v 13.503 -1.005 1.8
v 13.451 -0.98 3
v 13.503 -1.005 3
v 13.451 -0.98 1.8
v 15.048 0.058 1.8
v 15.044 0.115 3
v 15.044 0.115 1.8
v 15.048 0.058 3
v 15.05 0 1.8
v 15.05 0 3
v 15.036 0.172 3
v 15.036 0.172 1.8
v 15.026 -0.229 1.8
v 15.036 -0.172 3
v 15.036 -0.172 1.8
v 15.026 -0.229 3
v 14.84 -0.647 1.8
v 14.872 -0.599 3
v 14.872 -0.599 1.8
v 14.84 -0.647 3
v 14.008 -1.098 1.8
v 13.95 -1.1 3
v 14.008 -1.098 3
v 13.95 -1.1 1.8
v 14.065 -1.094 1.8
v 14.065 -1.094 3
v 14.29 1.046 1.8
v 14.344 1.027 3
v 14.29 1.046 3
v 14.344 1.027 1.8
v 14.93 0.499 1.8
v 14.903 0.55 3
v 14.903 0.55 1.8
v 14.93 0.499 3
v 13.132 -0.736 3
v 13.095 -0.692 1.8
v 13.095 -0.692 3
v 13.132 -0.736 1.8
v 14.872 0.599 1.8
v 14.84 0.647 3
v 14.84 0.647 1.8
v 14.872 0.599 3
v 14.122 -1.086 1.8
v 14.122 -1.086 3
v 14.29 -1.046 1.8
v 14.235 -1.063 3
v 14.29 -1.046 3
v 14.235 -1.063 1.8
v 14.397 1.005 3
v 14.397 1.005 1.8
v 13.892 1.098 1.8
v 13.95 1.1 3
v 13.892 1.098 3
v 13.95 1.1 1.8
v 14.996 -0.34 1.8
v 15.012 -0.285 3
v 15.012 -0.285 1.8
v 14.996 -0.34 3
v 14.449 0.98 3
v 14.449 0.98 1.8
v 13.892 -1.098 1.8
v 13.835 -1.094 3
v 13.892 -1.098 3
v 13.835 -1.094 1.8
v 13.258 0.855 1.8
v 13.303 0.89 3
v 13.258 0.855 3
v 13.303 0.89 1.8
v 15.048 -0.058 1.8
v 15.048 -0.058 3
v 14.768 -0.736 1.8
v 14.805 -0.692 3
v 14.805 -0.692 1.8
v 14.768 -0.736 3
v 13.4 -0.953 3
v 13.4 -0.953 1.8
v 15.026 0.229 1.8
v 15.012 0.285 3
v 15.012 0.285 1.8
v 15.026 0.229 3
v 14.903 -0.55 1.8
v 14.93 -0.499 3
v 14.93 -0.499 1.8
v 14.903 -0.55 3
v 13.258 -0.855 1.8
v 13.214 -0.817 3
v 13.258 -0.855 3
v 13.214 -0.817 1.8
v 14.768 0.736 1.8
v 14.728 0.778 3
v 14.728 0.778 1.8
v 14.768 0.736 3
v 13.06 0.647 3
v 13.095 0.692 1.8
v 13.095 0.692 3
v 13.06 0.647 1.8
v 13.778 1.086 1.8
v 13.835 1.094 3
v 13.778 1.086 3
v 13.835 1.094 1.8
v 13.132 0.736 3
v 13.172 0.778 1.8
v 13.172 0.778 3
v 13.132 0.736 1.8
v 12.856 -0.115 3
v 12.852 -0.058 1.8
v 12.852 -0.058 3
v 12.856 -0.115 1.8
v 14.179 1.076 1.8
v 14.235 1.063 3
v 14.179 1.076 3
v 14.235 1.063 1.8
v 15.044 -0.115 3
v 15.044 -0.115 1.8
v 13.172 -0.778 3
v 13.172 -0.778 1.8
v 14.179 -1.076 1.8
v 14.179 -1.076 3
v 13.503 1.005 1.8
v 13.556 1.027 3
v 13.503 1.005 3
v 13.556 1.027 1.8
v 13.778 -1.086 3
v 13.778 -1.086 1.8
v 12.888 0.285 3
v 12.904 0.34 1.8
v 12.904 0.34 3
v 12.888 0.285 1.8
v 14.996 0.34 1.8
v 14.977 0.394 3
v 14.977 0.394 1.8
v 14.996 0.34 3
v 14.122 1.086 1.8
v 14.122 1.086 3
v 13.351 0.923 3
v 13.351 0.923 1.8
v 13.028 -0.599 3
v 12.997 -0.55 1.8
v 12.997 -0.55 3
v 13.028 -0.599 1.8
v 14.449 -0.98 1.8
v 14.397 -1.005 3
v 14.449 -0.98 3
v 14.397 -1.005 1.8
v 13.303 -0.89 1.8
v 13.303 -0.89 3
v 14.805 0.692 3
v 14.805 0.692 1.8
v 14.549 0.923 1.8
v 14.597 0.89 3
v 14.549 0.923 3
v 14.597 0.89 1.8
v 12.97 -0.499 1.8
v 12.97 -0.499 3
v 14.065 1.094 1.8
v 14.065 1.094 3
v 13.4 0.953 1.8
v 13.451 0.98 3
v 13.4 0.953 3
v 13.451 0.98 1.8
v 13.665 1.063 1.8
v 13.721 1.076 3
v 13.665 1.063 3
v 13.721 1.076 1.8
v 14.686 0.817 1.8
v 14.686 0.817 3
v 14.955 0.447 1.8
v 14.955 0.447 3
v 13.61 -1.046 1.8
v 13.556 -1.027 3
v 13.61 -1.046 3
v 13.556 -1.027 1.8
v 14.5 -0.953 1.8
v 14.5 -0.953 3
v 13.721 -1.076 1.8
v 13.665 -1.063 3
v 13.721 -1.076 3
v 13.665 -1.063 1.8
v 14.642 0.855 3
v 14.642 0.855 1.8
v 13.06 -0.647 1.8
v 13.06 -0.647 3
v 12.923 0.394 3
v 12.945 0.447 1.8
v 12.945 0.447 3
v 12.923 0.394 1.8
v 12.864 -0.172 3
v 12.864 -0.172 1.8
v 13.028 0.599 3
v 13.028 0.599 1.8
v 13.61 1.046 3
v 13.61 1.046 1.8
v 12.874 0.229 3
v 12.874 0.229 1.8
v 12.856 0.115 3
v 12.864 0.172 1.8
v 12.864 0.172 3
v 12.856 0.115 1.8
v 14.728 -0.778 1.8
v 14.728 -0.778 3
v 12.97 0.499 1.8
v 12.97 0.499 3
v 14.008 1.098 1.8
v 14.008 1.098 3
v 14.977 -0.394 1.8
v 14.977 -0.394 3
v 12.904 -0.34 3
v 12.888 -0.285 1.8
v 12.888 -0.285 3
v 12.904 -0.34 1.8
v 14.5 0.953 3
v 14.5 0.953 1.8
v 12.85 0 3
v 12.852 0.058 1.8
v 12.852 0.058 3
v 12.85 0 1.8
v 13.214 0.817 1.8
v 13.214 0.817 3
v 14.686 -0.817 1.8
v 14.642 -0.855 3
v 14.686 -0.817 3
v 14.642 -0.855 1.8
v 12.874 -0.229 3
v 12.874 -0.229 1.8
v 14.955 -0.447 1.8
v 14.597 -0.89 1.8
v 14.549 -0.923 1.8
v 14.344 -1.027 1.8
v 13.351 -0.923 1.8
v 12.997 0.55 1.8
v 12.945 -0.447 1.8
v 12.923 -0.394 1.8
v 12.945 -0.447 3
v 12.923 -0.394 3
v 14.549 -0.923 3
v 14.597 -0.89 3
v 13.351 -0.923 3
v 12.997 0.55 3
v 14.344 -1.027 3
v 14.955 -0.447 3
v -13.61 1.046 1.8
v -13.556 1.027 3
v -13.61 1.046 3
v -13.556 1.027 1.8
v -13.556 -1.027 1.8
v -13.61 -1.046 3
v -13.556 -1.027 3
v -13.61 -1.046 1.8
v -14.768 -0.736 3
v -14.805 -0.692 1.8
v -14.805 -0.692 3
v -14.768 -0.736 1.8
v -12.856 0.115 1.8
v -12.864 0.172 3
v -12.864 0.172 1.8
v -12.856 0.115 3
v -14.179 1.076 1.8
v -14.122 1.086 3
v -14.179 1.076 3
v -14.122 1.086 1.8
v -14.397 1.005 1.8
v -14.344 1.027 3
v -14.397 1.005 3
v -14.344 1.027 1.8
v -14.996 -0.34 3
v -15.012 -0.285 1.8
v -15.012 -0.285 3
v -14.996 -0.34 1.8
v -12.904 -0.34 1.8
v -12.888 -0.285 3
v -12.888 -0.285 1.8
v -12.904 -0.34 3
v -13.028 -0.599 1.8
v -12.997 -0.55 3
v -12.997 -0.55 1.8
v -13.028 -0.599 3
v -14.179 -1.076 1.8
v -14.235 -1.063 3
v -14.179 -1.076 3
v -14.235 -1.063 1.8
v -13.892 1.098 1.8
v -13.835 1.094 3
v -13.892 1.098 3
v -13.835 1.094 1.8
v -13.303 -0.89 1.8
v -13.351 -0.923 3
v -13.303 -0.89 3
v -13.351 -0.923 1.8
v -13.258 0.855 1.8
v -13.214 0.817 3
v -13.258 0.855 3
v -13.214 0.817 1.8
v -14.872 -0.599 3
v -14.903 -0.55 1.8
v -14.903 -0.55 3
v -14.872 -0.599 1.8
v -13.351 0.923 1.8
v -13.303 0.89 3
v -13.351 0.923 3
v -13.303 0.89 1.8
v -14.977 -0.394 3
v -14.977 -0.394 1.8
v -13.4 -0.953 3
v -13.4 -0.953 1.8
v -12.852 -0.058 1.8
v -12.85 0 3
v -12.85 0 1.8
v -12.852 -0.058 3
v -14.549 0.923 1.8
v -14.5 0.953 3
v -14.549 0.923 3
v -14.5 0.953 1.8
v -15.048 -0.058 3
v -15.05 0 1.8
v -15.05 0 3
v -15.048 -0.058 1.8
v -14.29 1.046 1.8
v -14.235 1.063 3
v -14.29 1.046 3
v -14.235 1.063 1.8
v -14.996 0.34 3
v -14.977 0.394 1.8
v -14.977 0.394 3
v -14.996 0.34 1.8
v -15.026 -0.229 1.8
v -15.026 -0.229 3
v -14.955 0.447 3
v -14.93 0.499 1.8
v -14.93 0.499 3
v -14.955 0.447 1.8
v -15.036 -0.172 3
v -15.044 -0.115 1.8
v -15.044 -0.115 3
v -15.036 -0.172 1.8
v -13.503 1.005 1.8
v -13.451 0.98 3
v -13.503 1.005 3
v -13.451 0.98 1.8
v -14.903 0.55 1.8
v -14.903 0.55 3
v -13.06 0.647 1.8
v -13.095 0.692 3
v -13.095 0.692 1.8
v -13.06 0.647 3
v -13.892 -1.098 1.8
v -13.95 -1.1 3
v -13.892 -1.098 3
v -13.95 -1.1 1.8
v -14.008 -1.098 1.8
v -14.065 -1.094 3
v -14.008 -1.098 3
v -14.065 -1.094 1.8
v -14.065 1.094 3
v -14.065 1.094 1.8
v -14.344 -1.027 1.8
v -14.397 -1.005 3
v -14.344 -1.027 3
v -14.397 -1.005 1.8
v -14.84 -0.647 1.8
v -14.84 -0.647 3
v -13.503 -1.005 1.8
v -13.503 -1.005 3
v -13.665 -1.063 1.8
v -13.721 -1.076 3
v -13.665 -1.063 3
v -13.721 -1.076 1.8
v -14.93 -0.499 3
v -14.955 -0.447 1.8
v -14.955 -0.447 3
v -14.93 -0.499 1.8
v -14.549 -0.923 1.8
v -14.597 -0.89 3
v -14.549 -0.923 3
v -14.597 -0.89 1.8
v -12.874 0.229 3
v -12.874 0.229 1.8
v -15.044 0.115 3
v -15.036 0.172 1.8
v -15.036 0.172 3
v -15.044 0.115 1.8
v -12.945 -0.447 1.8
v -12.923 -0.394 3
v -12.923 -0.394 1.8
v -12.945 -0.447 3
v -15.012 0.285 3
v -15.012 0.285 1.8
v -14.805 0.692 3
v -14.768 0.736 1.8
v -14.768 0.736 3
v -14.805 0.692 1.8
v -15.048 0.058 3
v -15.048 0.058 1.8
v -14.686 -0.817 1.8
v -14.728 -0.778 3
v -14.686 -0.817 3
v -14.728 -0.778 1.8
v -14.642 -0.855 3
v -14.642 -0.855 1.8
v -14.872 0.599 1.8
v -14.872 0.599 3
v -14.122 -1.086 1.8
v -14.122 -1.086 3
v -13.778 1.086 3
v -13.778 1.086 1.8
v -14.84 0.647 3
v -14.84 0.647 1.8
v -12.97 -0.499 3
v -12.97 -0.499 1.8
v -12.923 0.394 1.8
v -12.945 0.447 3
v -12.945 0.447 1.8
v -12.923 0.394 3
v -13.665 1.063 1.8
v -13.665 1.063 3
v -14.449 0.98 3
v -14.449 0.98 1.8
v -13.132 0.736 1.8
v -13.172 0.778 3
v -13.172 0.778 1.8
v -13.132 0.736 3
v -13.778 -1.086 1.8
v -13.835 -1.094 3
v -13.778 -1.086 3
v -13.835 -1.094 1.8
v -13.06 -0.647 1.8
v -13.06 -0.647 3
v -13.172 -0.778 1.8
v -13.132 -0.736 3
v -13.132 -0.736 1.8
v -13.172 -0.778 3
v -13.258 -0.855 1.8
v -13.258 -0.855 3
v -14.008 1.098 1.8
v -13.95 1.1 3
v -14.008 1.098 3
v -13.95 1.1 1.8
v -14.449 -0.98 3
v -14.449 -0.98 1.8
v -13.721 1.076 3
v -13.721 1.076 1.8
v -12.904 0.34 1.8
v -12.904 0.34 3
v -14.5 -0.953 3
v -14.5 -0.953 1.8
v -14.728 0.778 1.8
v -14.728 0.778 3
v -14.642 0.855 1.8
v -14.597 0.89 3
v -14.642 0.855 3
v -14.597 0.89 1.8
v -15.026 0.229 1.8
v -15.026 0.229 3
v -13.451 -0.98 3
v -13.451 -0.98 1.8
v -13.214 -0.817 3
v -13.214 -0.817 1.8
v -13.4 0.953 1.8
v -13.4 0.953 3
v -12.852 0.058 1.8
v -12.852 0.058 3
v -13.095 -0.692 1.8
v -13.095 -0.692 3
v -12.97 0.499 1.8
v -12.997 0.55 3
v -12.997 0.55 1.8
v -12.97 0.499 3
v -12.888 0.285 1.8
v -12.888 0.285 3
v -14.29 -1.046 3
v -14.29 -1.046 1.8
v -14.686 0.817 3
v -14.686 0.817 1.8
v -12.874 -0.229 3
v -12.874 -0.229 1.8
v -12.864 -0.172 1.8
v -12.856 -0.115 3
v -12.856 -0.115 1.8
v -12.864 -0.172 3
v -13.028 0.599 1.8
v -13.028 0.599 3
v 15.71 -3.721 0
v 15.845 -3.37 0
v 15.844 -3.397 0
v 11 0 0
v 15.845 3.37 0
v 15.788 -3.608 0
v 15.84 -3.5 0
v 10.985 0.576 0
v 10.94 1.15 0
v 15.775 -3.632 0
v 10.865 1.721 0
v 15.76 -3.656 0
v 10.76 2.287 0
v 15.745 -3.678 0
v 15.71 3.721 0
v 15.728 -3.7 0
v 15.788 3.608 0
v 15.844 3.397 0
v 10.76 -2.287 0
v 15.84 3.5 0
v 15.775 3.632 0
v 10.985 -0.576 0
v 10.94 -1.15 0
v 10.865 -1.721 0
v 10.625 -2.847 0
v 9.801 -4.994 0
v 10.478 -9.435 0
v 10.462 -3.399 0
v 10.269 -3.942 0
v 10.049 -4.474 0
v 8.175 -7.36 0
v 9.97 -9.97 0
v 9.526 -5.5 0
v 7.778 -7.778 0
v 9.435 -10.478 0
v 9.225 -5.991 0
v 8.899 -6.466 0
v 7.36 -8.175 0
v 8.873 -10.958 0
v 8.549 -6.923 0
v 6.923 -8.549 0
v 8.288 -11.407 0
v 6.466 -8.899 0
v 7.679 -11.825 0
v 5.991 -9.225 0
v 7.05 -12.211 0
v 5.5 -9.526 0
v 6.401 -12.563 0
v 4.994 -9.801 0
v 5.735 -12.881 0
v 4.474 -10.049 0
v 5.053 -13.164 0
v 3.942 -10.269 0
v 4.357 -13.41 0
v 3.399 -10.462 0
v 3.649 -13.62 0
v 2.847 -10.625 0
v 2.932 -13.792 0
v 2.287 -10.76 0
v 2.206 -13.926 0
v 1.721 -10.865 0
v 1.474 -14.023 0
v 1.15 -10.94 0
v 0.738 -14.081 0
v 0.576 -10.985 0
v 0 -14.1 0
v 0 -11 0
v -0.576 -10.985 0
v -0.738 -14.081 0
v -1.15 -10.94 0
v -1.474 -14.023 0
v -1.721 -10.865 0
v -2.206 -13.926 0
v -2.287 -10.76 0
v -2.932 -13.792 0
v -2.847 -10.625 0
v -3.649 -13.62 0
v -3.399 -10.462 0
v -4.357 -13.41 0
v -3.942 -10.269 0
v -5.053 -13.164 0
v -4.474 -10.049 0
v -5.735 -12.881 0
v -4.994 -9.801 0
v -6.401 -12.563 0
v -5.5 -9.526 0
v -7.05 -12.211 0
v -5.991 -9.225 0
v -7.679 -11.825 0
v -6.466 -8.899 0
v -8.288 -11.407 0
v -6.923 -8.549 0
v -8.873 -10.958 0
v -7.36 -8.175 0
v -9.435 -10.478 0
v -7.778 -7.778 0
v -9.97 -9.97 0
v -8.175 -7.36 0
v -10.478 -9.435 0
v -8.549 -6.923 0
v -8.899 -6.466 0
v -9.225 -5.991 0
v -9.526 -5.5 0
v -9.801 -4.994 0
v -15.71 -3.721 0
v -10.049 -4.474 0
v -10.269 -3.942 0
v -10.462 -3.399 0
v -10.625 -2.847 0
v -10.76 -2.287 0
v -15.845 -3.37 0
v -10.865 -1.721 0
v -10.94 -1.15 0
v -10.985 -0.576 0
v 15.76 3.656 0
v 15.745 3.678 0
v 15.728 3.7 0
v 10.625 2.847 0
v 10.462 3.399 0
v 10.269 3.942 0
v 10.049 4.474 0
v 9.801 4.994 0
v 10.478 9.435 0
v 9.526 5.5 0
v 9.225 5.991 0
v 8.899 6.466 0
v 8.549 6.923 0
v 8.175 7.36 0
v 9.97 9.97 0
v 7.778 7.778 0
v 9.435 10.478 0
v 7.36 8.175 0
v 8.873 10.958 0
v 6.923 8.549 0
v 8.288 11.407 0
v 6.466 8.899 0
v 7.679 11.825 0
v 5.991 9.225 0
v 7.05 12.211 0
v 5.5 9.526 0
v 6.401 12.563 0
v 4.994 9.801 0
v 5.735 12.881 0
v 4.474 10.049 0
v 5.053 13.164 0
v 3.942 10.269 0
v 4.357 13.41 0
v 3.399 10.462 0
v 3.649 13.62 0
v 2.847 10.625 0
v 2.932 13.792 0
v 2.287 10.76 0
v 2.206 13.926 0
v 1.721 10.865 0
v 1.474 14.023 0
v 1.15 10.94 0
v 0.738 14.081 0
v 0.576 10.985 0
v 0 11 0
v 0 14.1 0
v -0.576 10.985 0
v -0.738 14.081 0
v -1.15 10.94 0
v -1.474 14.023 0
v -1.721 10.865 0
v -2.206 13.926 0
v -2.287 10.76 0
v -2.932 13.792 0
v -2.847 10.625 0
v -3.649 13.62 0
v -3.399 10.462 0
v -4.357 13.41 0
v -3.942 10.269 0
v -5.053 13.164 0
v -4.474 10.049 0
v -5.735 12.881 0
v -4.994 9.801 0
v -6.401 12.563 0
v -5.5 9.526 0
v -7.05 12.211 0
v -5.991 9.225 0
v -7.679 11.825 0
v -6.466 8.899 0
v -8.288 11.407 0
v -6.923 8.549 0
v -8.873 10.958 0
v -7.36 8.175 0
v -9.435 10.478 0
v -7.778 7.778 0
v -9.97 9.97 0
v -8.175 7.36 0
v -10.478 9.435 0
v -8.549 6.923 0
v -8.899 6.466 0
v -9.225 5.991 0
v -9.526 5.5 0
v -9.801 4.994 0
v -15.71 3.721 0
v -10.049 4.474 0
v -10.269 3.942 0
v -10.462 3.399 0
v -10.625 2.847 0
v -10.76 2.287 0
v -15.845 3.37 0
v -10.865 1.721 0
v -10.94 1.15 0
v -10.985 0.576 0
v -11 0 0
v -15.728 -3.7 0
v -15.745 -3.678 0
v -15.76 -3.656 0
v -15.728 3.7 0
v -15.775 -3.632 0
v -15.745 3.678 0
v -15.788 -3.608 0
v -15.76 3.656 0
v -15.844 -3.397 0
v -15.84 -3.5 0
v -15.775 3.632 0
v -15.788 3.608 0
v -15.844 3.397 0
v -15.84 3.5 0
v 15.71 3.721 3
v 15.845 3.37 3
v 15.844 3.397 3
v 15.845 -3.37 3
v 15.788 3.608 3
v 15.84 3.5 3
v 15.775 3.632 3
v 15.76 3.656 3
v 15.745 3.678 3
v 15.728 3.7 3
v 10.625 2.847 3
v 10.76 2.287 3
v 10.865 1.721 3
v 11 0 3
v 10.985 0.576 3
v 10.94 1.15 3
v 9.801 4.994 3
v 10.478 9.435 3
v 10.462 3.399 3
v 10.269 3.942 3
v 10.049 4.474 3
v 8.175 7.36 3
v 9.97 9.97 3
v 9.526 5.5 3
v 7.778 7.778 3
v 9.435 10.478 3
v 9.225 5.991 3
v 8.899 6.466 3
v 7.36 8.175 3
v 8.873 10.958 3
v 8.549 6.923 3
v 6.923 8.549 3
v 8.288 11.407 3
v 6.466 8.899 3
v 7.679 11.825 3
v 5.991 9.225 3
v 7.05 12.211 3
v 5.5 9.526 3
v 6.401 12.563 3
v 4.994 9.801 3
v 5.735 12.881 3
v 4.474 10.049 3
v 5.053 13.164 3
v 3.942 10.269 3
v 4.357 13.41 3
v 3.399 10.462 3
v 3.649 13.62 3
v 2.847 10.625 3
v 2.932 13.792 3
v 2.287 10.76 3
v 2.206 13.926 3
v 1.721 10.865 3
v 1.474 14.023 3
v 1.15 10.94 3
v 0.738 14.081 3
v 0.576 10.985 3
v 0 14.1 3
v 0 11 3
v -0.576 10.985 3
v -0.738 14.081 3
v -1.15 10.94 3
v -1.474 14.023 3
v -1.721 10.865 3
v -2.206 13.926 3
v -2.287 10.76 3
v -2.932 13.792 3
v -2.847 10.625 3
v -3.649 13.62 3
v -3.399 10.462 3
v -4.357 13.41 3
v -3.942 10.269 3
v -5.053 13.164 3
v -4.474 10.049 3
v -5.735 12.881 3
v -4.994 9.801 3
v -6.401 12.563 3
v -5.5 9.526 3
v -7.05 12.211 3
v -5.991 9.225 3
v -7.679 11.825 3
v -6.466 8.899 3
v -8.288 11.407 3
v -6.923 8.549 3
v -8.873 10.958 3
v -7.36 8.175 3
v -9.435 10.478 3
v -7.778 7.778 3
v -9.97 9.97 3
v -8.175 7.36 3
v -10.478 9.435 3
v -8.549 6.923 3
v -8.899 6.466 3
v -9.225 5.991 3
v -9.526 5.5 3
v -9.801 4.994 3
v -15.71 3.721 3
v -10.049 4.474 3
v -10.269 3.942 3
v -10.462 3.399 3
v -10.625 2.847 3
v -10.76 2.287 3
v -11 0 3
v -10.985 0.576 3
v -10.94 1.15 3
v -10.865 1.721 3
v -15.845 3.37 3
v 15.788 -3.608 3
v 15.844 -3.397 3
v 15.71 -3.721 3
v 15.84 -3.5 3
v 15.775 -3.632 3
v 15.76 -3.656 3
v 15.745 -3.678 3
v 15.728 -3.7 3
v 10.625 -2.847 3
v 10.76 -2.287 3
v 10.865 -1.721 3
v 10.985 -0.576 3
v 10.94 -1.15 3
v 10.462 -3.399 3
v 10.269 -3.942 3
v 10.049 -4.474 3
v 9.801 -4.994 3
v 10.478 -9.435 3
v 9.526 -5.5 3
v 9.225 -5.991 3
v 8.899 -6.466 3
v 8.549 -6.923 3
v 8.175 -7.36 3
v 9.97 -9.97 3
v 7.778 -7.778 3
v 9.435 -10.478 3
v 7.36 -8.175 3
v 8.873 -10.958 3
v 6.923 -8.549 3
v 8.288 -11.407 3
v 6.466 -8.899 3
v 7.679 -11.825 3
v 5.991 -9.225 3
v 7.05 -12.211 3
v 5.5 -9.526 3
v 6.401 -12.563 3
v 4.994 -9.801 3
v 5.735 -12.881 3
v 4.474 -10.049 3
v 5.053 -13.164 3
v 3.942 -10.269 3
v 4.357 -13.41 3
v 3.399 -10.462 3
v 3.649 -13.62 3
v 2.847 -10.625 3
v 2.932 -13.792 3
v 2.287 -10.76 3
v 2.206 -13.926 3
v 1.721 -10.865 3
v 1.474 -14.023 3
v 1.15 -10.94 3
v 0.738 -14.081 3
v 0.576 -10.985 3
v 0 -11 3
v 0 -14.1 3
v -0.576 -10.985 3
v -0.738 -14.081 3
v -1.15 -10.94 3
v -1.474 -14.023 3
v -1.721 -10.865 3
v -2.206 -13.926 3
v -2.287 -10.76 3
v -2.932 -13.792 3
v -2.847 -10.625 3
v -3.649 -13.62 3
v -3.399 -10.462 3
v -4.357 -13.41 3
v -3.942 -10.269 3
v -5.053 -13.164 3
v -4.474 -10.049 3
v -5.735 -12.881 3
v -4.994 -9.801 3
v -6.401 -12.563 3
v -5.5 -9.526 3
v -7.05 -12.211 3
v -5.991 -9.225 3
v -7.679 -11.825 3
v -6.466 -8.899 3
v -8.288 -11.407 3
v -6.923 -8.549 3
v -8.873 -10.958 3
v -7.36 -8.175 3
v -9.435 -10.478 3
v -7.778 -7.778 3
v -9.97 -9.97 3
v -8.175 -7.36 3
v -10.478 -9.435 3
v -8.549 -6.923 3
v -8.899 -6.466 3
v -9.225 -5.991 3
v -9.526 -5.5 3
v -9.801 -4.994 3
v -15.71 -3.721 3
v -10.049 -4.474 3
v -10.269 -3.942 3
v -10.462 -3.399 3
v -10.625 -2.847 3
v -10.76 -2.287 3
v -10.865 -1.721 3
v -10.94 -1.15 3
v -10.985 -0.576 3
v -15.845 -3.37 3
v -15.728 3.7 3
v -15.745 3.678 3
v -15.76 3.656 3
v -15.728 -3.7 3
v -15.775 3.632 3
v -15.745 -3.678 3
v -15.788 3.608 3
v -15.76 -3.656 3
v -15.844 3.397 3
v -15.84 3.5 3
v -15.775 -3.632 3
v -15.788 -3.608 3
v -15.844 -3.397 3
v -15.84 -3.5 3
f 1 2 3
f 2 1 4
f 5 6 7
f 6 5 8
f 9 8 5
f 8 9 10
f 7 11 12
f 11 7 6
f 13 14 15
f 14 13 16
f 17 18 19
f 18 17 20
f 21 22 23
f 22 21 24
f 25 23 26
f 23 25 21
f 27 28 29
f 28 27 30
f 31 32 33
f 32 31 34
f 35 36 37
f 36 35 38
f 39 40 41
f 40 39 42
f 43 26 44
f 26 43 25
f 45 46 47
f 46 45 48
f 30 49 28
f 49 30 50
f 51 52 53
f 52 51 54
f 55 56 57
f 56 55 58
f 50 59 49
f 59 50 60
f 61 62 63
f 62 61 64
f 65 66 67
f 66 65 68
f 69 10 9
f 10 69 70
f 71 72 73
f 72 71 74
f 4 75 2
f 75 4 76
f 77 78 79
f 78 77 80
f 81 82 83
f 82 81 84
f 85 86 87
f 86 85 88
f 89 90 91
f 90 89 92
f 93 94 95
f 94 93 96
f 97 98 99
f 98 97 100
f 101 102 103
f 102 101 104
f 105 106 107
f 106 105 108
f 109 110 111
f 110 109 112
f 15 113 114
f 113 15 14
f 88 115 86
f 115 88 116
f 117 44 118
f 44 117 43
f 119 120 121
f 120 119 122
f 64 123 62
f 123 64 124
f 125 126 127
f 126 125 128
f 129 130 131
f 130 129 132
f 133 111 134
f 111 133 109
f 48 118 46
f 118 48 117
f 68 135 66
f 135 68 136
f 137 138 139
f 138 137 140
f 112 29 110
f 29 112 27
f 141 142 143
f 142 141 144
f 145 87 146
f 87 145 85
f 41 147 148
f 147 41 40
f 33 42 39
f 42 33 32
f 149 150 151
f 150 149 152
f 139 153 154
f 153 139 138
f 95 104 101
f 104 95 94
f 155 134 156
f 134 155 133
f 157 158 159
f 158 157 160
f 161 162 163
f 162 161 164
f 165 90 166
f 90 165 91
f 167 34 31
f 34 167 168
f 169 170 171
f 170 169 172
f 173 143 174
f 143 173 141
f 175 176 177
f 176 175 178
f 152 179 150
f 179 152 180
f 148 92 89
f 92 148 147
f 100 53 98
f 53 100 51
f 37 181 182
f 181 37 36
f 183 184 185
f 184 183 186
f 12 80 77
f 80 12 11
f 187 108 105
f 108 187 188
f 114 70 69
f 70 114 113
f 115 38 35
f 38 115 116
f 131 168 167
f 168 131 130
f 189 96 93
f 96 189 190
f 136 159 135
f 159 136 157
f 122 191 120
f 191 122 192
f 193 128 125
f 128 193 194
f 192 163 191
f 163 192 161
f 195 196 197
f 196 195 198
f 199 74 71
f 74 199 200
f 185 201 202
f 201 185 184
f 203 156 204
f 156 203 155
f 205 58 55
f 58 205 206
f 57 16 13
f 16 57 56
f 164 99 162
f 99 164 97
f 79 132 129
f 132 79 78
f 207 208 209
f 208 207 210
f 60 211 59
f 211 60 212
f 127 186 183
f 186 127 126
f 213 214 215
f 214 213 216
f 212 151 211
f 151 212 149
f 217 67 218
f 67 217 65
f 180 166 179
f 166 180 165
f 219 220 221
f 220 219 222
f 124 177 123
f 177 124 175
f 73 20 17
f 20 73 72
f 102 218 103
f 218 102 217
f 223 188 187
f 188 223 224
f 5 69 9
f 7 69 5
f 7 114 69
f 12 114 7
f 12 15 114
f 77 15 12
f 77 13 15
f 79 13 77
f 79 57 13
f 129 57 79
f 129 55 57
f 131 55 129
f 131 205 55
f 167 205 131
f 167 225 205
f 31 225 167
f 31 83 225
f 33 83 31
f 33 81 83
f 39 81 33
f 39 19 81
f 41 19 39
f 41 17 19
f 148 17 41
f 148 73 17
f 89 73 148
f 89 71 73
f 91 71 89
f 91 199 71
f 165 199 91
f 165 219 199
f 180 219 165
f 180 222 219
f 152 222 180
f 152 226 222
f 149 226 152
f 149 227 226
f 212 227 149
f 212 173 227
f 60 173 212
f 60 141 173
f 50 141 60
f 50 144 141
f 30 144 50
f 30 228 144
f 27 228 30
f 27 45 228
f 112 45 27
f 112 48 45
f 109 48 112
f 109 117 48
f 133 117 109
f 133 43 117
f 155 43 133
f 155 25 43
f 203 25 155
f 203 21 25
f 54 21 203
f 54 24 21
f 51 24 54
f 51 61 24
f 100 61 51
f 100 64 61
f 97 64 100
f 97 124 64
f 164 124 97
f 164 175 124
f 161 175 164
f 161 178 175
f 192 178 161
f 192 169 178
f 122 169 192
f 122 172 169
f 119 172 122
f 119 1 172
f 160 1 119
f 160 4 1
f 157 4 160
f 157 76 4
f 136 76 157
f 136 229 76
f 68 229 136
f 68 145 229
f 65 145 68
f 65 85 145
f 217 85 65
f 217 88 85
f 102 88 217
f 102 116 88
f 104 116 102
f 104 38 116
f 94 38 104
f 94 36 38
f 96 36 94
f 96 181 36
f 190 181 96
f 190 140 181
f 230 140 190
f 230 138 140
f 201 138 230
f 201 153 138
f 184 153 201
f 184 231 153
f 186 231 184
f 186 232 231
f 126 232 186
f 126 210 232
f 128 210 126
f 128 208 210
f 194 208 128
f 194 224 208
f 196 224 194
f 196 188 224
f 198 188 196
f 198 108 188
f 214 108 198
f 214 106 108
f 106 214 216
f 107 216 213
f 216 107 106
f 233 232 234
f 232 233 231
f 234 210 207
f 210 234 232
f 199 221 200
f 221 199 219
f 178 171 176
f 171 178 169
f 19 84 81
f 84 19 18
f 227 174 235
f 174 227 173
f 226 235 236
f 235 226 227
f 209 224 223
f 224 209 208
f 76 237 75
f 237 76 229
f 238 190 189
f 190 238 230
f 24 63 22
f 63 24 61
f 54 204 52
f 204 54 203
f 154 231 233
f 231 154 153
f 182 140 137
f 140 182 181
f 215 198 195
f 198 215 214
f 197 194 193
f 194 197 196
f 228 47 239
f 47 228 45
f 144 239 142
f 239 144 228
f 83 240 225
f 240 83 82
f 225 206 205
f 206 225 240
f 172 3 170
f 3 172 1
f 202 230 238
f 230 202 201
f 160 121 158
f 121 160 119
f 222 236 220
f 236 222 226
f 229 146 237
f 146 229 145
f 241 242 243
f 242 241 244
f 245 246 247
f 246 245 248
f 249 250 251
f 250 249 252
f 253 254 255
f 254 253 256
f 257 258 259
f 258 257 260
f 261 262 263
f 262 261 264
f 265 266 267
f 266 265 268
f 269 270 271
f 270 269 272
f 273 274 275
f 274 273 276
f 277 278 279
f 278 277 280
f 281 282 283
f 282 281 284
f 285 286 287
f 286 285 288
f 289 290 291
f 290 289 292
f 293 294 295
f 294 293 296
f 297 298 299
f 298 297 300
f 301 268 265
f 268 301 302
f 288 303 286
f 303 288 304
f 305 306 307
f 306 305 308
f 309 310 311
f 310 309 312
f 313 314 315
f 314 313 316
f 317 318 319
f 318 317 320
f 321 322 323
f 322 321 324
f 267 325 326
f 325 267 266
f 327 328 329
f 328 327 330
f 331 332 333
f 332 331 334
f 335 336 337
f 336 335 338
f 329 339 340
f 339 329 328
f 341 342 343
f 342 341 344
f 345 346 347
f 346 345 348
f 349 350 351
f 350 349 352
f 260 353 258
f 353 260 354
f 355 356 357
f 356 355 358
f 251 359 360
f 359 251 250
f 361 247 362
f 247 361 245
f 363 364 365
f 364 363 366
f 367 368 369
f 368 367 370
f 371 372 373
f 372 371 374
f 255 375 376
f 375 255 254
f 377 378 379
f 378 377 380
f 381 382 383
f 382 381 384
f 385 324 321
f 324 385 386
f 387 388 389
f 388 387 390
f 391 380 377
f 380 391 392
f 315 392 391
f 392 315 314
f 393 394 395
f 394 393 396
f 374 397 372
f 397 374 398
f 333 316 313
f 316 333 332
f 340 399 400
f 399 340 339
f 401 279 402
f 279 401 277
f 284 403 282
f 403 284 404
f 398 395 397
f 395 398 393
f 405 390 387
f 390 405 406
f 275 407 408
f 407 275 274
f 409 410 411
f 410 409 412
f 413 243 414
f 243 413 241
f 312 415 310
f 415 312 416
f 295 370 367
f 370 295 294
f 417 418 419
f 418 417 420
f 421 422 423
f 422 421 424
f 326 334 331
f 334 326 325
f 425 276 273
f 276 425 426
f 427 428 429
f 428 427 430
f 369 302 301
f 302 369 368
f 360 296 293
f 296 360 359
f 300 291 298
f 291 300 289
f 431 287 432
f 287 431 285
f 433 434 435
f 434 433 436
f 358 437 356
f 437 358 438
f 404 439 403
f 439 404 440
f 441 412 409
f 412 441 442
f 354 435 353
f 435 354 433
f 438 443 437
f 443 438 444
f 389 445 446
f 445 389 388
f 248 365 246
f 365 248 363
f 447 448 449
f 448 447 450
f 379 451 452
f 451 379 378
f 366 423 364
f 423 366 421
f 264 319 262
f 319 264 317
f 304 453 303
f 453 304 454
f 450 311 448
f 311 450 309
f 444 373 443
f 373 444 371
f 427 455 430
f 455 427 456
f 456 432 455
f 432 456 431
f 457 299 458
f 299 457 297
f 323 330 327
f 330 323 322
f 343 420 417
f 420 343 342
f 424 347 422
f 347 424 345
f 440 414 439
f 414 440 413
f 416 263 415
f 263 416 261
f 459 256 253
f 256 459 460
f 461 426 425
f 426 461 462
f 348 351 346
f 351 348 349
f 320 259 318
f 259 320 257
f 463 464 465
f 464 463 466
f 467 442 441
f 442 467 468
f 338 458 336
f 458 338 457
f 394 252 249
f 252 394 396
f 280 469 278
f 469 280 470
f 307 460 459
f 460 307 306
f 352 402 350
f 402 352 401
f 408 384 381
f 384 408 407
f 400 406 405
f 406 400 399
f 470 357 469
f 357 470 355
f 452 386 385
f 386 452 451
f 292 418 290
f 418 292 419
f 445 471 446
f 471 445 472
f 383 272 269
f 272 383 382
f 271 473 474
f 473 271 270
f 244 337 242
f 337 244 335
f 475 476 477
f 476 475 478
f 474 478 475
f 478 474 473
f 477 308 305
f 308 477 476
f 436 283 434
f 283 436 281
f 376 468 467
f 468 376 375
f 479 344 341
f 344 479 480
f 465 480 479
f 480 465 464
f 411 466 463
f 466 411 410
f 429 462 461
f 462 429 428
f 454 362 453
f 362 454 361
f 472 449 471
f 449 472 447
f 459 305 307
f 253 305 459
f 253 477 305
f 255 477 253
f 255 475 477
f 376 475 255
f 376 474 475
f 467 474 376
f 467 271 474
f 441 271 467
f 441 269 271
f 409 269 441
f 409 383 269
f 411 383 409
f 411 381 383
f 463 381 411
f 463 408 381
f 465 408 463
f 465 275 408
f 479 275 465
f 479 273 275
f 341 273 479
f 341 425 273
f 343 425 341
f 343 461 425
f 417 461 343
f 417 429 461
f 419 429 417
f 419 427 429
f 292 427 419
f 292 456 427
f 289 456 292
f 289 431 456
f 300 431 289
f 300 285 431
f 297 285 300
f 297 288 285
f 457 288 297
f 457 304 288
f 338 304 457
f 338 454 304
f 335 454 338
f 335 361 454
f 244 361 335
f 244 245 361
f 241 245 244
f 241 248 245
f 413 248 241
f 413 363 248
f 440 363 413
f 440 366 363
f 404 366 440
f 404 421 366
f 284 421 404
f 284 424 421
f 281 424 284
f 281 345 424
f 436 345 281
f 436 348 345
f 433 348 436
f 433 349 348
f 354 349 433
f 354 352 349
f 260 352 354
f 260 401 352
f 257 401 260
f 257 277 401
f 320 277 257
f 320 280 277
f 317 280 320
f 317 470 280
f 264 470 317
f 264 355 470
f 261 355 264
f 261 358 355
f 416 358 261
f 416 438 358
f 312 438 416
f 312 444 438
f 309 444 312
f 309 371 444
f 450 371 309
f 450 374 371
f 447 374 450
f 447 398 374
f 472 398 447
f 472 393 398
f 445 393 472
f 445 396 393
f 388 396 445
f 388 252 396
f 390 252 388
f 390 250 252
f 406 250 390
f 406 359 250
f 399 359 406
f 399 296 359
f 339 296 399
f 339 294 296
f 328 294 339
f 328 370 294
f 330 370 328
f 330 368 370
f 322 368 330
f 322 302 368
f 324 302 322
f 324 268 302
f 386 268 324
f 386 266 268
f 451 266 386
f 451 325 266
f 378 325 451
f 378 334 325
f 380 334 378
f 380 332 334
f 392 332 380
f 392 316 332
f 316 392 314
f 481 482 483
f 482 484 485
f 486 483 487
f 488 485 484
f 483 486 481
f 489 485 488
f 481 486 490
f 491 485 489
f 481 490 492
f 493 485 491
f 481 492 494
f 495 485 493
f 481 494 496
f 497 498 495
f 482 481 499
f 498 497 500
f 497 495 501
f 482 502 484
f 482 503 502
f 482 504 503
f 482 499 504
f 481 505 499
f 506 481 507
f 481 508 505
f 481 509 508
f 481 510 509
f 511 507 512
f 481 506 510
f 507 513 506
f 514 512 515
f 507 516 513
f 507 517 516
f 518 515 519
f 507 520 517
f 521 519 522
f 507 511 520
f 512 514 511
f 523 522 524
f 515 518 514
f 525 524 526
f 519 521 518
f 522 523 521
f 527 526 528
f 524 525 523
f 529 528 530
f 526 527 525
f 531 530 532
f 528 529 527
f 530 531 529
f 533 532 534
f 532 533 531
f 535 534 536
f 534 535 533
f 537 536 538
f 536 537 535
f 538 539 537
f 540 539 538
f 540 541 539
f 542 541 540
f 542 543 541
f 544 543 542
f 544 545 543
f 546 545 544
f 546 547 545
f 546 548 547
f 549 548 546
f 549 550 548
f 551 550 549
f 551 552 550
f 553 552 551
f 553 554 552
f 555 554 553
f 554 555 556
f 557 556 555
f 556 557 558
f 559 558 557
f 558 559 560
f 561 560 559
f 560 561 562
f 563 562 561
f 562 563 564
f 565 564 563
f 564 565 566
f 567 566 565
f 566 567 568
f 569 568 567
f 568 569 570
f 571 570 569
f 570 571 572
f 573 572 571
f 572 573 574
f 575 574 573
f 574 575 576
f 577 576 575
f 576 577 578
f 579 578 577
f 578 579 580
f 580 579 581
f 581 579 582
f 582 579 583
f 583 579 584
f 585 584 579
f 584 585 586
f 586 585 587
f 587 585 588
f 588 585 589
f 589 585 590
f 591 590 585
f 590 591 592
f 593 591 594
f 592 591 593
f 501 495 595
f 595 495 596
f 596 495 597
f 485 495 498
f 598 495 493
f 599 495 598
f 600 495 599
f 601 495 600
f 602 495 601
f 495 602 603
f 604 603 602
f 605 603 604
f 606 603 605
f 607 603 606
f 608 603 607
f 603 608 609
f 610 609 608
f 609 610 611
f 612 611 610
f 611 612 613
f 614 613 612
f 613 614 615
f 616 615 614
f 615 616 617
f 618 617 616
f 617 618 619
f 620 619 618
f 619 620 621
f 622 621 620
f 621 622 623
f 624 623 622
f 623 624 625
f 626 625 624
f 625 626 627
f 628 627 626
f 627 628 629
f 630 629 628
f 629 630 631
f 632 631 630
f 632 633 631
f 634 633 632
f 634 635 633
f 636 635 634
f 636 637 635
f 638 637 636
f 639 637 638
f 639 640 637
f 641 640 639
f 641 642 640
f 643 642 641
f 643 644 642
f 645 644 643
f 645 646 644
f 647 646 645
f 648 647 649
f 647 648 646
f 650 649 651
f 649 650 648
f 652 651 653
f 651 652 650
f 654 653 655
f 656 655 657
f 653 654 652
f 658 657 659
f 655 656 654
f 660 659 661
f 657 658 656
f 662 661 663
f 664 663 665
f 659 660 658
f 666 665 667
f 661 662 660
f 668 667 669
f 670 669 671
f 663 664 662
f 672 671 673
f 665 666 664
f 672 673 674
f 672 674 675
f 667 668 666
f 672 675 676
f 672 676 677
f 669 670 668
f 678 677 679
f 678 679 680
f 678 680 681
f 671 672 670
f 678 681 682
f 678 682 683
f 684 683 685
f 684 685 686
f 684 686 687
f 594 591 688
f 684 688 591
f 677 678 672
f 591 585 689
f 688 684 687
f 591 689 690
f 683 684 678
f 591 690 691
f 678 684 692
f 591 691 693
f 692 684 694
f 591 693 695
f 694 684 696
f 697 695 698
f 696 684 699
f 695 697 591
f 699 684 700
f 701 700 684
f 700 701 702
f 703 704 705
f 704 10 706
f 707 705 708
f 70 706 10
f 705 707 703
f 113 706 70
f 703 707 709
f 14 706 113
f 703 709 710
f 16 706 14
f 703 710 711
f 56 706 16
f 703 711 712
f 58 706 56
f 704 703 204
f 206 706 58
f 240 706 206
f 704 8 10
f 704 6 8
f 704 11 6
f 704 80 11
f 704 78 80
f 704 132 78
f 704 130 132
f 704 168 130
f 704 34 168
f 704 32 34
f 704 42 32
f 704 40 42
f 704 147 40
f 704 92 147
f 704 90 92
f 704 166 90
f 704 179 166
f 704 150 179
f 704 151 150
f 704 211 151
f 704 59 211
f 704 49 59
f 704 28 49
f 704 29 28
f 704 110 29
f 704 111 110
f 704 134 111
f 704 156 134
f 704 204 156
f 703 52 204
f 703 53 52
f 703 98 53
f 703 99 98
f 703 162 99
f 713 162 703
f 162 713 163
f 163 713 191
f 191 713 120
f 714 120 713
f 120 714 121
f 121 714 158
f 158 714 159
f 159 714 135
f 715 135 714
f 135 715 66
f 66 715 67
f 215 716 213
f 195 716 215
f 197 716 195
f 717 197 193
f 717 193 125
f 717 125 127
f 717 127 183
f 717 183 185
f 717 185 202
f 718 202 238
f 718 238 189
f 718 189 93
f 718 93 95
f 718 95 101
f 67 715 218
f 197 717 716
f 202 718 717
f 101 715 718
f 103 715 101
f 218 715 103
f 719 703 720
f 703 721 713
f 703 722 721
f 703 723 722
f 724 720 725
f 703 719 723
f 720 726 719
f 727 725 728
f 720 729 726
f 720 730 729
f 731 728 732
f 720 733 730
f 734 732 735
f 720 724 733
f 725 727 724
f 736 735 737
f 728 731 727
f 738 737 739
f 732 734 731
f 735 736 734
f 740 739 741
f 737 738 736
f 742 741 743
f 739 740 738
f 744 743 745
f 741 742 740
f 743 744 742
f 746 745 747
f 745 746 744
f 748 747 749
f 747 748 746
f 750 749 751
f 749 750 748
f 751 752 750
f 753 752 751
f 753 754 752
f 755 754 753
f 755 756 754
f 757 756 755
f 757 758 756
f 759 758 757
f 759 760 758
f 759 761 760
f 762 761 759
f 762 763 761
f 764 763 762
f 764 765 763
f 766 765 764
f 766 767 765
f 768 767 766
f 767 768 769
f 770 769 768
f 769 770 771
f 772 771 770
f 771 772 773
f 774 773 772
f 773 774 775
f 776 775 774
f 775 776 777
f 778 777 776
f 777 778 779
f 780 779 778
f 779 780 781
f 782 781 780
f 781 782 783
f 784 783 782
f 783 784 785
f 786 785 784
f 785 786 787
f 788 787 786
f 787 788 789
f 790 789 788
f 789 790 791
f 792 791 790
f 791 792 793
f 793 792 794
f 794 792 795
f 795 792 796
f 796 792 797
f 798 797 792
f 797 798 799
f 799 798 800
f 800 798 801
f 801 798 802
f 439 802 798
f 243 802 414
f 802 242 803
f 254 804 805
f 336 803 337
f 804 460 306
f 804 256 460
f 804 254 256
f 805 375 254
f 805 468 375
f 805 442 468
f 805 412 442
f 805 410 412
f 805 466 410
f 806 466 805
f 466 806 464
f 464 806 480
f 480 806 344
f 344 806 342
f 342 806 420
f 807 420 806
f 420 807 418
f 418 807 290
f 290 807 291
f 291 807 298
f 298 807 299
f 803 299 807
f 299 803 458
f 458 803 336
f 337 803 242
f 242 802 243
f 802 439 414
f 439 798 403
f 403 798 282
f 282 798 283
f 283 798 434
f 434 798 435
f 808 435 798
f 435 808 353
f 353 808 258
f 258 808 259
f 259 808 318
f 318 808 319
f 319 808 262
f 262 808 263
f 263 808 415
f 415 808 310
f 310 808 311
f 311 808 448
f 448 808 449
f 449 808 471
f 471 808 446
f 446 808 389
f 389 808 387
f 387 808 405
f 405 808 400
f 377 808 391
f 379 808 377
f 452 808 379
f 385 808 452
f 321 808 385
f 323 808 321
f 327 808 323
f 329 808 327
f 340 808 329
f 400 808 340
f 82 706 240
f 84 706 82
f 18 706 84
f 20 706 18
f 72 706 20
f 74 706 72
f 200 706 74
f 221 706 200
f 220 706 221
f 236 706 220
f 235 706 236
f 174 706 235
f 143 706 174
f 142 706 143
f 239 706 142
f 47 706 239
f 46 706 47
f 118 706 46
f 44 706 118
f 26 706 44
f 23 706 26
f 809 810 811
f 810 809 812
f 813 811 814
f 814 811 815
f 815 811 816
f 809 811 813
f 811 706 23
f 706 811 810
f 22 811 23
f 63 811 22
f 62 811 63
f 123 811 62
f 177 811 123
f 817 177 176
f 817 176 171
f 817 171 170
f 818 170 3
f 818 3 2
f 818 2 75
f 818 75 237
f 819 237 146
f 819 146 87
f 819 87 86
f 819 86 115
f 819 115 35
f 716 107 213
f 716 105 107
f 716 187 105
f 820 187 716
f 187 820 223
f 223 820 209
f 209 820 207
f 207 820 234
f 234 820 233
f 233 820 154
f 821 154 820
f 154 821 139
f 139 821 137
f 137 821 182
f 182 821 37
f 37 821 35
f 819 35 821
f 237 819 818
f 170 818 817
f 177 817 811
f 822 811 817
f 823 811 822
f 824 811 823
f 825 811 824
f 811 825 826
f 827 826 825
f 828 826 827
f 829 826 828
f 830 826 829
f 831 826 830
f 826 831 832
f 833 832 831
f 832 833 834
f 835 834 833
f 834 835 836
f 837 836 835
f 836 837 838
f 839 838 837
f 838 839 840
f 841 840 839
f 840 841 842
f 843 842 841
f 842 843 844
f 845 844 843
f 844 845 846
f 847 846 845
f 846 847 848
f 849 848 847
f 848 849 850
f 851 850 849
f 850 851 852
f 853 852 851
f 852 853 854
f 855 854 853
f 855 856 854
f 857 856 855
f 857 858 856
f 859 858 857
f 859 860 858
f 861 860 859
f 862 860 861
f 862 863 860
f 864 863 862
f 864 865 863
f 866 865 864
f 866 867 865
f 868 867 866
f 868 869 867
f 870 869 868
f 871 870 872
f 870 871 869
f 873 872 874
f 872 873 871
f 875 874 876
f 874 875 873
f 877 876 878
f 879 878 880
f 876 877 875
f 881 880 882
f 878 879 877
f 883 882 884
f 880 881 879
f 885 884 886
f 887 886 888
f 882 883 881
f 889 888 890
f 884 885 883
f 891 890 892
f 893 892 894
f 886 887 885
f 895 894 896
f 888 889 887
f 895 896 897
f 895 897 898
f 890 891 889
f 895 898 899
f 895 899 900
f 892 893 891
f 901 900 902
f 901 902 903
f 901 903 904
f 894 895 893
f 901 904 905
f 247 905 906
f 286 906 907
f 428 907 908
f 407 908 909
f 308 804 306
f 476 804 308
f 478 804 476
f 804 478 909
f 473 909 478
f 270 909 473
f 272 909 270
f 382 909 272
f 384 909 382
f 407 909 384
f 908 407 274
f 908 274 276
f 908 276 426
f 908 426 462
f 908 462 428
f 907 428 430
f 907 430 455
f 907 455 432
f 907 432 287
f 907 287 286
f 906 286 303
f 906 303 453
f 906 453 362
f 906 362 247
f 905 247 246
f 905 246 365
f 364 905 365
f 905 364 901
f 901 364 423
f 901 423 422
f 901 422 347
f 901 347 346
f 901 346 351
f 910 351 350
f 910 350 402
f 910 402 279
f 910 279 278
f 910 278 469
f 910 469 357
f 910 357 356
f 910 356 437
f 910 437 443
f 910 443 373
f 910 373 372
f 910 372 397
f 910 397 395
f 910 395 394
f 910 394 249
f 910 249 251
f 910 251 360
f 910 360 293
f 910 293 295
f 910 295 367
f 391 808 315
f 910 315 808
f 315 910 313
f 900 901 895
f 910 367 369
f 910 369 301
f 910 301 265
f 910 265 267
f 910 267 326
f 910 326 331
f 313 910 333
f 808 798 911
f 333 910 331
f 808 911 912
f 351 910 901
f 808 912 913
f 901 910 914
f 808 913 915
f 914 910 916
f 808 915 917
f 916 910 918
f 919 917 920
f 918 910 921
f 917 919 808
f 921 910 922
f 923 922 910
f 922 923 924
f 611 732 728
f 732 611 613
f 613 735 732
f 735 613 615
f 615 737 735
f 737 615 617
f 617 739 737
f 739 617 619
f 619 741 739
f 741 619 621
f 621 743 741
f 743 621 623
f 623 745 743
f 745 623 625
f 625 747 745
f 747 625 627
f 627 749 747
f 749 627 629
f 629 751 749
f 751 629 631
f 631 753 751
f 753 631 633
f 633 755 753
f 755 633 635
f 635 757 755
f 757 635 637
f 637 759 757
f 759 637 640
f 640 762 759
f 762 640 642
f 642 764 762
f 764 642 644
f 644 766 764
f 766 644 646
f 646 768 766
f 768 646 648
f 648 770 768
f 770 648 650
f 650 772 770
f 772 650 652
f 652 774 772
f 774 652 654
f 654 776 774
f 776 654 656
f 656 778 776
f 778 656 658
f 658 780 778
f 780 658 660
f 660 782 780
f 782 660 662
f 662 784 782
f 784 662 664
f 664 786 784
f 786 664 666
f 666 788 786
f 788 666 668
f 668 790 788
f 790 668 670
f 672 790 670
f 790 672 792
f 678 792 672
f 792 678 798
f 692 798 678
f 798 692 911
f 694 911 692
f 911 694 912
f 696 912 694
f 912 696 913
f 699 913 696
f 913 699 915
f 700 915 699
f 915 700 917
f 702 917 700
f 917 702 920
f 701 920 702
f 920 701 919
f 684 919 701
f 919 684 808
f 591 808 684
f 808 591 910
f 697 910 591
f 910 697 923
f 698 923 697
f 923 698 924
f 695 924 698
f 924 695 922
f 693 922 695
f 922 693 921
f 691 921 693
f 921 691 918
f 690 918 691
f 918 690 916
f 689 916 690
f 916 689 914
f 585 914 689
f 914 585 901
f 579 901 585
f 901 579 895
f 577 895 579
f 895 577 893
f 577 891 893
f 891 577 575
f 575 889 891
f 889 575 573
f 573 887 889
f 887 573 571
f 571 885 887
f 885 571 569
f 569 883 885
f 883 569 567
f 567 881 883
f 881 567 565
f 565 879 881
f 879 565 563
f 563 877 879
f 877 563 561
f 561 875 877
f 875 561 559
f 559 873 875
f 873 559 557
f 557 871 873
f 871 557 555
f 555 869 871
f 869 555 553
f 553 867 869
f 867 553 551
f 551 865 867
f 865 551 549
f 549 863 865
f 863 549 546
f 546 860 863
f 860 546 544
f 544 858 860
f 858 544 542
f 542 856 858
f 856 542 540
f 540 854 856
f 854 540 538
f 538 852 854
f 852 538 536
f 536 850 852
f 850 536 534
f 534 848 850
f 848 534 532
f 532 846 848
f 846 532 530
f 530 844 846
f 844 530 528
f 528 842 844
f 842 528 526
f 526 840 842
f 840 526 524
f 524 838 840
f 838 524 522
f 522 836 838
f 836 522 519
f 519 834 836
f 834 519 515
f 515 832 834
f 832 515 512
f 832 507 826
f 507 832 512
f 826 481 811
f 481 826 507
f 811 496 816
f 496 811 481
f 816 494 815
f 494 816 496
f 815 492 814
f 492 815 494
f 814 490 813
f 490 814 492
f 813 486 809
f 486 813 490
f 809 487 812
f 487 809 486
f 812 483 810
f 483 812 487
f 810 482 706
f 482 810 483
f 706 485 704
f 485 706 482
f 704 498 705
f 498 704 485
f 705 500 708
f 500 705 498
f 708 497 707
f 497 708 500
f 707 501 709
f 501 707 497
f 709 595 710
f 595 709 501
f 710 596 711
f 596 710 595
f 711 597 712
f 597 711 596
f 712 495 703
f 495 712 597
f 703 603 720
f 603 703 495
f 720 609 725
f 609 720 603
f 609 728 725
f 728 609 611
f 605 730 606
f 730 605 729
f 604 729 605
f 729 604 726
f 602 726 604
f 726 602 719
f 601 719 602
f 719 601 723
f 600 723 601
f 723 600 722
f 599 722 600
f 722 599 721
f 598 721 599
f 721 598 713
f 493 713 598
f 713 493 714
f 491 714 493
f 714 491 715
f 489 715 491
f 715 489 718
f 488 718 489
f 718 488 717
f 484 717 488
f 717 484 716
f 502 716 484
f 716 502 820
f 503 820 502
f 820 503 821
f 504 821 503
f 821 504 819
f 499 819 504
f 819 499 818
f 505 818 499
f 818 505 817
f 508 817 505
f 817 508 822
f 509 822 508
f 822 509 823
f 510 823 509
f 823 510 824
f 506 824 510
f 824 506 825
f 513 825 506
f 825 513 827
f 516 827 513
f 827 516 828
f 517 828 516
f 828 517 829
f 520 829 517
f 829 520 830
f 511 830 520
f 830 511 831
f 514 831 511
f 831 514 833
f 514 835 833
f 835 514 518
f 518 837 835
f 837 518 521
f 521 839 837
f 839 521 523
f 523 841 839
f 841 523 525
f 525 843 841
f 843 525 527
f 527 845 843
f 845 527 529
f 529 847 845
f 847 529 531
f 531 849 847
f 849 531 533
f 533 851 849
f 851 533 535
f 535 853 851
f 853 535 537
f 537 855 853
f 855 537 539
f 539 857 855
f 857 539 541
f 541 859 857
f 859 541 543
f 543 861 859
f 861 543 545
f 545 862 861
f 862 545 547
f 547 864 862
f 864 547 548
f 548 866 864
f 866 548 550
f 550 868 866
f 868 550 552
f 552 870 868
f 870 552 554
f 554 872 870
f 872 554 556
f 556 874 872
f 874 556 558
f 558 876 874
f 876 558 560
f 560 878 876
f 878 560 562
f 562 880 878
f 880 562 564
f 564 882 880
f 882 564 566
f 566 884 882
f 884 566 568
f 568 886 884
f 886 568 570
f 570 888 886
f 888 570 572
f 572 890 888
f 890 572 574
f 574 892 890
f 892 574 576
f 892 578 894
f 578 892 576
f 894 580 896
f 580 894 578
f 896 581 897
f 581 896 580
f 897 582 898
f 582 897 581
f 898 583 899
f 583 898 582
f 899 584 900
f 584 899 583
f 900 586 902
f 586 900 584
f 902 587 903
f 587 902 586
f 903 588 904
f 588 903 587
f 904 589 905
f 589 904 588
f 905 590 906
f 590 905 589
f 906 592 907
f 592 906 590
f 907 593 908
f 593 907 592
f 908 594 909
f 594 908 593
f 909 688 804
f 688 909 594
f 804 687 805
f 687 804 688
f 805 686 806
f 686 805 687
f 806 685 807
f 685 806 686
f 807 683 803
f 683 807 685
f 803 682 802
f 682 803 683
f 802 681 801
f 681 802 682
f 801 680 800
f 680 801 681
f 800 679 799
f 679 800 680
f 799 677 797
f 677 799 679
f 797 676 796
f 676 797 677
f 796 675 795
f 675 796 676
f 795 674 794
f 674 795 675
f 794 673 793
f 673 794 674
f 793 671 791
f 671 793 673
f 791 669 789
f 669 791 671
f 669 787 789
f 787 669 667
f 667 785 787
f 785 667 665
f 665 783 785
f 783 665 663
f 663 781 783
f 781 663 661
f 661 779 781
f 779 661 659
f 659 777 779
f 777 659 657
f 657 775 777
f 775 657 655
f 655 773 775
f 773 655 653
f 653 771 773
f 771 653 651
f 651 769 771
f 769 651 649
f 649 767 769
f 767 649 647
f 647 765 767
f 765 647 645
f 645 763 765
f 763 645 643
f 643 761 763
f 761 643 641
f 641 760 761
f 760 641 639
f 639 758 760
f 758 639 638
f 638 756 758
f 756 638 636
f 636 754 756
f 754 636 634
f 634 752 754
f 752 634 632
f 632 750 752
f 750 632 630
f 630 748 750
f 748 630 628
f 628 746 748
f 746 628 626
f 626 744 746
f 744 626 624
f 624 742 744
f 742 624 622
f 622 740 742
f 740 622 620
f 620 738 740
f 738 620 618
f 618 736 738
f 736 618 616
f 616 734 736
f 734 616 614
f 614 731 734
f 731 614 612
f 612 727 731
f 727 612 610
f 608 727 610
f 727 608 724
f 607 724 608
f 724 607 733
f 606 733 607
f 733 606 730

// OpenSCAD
/*
 * Special version of ring for use on models like the DDAS snakes that
 * cannot really work with the raised and tilted spots for numbers.
 * This one is meant to be plasti-tack'd to the bottom of the model.
 */

$fn=120;
rad = 25/2+0.0;
ht  = 4;
angle = 25;

% translate([0,0,3.5]) ringDDAS();
eliteDDAS();

module eliteDDAS() {
   difference() {
      linear_extrude(height=3.0) projection() ringDDAS();

      /* magnets? */
      for (i=[0:1]) {
         rotate([0,0,i*180]) translate([rad+1.45,0,1.8]) cylinder(h=5,d=2.2);
      }
   }
}

module ringDDAS() {
   difference() {
      union() {
         hull() {
            for (i=[0:1]) {
               rotate([0,0,i*180]) translate([rad+1.6,-3.5,-1.0]) rotate([0,-1*angle,0]) cube([2,7,ht+1]);
            }
            cylinder(h=ht, r=rad+1.6);
         }
      }

      /* cut down to base shape */
      /* note: thicker inner ring than ring-2, trying magnet idea */
      translate([0,0,1.21]) cylinder(h=10,r=rad+0.4);
      translate([0,0,-0.1]) cylinder(h=10,r=rad-1.5);
      translate([0,0,ht]) cylinder(h=10,r=rad+5);
      translate([0,0,-2]) cylinder(h=2,r=rad+5);

   }
}
